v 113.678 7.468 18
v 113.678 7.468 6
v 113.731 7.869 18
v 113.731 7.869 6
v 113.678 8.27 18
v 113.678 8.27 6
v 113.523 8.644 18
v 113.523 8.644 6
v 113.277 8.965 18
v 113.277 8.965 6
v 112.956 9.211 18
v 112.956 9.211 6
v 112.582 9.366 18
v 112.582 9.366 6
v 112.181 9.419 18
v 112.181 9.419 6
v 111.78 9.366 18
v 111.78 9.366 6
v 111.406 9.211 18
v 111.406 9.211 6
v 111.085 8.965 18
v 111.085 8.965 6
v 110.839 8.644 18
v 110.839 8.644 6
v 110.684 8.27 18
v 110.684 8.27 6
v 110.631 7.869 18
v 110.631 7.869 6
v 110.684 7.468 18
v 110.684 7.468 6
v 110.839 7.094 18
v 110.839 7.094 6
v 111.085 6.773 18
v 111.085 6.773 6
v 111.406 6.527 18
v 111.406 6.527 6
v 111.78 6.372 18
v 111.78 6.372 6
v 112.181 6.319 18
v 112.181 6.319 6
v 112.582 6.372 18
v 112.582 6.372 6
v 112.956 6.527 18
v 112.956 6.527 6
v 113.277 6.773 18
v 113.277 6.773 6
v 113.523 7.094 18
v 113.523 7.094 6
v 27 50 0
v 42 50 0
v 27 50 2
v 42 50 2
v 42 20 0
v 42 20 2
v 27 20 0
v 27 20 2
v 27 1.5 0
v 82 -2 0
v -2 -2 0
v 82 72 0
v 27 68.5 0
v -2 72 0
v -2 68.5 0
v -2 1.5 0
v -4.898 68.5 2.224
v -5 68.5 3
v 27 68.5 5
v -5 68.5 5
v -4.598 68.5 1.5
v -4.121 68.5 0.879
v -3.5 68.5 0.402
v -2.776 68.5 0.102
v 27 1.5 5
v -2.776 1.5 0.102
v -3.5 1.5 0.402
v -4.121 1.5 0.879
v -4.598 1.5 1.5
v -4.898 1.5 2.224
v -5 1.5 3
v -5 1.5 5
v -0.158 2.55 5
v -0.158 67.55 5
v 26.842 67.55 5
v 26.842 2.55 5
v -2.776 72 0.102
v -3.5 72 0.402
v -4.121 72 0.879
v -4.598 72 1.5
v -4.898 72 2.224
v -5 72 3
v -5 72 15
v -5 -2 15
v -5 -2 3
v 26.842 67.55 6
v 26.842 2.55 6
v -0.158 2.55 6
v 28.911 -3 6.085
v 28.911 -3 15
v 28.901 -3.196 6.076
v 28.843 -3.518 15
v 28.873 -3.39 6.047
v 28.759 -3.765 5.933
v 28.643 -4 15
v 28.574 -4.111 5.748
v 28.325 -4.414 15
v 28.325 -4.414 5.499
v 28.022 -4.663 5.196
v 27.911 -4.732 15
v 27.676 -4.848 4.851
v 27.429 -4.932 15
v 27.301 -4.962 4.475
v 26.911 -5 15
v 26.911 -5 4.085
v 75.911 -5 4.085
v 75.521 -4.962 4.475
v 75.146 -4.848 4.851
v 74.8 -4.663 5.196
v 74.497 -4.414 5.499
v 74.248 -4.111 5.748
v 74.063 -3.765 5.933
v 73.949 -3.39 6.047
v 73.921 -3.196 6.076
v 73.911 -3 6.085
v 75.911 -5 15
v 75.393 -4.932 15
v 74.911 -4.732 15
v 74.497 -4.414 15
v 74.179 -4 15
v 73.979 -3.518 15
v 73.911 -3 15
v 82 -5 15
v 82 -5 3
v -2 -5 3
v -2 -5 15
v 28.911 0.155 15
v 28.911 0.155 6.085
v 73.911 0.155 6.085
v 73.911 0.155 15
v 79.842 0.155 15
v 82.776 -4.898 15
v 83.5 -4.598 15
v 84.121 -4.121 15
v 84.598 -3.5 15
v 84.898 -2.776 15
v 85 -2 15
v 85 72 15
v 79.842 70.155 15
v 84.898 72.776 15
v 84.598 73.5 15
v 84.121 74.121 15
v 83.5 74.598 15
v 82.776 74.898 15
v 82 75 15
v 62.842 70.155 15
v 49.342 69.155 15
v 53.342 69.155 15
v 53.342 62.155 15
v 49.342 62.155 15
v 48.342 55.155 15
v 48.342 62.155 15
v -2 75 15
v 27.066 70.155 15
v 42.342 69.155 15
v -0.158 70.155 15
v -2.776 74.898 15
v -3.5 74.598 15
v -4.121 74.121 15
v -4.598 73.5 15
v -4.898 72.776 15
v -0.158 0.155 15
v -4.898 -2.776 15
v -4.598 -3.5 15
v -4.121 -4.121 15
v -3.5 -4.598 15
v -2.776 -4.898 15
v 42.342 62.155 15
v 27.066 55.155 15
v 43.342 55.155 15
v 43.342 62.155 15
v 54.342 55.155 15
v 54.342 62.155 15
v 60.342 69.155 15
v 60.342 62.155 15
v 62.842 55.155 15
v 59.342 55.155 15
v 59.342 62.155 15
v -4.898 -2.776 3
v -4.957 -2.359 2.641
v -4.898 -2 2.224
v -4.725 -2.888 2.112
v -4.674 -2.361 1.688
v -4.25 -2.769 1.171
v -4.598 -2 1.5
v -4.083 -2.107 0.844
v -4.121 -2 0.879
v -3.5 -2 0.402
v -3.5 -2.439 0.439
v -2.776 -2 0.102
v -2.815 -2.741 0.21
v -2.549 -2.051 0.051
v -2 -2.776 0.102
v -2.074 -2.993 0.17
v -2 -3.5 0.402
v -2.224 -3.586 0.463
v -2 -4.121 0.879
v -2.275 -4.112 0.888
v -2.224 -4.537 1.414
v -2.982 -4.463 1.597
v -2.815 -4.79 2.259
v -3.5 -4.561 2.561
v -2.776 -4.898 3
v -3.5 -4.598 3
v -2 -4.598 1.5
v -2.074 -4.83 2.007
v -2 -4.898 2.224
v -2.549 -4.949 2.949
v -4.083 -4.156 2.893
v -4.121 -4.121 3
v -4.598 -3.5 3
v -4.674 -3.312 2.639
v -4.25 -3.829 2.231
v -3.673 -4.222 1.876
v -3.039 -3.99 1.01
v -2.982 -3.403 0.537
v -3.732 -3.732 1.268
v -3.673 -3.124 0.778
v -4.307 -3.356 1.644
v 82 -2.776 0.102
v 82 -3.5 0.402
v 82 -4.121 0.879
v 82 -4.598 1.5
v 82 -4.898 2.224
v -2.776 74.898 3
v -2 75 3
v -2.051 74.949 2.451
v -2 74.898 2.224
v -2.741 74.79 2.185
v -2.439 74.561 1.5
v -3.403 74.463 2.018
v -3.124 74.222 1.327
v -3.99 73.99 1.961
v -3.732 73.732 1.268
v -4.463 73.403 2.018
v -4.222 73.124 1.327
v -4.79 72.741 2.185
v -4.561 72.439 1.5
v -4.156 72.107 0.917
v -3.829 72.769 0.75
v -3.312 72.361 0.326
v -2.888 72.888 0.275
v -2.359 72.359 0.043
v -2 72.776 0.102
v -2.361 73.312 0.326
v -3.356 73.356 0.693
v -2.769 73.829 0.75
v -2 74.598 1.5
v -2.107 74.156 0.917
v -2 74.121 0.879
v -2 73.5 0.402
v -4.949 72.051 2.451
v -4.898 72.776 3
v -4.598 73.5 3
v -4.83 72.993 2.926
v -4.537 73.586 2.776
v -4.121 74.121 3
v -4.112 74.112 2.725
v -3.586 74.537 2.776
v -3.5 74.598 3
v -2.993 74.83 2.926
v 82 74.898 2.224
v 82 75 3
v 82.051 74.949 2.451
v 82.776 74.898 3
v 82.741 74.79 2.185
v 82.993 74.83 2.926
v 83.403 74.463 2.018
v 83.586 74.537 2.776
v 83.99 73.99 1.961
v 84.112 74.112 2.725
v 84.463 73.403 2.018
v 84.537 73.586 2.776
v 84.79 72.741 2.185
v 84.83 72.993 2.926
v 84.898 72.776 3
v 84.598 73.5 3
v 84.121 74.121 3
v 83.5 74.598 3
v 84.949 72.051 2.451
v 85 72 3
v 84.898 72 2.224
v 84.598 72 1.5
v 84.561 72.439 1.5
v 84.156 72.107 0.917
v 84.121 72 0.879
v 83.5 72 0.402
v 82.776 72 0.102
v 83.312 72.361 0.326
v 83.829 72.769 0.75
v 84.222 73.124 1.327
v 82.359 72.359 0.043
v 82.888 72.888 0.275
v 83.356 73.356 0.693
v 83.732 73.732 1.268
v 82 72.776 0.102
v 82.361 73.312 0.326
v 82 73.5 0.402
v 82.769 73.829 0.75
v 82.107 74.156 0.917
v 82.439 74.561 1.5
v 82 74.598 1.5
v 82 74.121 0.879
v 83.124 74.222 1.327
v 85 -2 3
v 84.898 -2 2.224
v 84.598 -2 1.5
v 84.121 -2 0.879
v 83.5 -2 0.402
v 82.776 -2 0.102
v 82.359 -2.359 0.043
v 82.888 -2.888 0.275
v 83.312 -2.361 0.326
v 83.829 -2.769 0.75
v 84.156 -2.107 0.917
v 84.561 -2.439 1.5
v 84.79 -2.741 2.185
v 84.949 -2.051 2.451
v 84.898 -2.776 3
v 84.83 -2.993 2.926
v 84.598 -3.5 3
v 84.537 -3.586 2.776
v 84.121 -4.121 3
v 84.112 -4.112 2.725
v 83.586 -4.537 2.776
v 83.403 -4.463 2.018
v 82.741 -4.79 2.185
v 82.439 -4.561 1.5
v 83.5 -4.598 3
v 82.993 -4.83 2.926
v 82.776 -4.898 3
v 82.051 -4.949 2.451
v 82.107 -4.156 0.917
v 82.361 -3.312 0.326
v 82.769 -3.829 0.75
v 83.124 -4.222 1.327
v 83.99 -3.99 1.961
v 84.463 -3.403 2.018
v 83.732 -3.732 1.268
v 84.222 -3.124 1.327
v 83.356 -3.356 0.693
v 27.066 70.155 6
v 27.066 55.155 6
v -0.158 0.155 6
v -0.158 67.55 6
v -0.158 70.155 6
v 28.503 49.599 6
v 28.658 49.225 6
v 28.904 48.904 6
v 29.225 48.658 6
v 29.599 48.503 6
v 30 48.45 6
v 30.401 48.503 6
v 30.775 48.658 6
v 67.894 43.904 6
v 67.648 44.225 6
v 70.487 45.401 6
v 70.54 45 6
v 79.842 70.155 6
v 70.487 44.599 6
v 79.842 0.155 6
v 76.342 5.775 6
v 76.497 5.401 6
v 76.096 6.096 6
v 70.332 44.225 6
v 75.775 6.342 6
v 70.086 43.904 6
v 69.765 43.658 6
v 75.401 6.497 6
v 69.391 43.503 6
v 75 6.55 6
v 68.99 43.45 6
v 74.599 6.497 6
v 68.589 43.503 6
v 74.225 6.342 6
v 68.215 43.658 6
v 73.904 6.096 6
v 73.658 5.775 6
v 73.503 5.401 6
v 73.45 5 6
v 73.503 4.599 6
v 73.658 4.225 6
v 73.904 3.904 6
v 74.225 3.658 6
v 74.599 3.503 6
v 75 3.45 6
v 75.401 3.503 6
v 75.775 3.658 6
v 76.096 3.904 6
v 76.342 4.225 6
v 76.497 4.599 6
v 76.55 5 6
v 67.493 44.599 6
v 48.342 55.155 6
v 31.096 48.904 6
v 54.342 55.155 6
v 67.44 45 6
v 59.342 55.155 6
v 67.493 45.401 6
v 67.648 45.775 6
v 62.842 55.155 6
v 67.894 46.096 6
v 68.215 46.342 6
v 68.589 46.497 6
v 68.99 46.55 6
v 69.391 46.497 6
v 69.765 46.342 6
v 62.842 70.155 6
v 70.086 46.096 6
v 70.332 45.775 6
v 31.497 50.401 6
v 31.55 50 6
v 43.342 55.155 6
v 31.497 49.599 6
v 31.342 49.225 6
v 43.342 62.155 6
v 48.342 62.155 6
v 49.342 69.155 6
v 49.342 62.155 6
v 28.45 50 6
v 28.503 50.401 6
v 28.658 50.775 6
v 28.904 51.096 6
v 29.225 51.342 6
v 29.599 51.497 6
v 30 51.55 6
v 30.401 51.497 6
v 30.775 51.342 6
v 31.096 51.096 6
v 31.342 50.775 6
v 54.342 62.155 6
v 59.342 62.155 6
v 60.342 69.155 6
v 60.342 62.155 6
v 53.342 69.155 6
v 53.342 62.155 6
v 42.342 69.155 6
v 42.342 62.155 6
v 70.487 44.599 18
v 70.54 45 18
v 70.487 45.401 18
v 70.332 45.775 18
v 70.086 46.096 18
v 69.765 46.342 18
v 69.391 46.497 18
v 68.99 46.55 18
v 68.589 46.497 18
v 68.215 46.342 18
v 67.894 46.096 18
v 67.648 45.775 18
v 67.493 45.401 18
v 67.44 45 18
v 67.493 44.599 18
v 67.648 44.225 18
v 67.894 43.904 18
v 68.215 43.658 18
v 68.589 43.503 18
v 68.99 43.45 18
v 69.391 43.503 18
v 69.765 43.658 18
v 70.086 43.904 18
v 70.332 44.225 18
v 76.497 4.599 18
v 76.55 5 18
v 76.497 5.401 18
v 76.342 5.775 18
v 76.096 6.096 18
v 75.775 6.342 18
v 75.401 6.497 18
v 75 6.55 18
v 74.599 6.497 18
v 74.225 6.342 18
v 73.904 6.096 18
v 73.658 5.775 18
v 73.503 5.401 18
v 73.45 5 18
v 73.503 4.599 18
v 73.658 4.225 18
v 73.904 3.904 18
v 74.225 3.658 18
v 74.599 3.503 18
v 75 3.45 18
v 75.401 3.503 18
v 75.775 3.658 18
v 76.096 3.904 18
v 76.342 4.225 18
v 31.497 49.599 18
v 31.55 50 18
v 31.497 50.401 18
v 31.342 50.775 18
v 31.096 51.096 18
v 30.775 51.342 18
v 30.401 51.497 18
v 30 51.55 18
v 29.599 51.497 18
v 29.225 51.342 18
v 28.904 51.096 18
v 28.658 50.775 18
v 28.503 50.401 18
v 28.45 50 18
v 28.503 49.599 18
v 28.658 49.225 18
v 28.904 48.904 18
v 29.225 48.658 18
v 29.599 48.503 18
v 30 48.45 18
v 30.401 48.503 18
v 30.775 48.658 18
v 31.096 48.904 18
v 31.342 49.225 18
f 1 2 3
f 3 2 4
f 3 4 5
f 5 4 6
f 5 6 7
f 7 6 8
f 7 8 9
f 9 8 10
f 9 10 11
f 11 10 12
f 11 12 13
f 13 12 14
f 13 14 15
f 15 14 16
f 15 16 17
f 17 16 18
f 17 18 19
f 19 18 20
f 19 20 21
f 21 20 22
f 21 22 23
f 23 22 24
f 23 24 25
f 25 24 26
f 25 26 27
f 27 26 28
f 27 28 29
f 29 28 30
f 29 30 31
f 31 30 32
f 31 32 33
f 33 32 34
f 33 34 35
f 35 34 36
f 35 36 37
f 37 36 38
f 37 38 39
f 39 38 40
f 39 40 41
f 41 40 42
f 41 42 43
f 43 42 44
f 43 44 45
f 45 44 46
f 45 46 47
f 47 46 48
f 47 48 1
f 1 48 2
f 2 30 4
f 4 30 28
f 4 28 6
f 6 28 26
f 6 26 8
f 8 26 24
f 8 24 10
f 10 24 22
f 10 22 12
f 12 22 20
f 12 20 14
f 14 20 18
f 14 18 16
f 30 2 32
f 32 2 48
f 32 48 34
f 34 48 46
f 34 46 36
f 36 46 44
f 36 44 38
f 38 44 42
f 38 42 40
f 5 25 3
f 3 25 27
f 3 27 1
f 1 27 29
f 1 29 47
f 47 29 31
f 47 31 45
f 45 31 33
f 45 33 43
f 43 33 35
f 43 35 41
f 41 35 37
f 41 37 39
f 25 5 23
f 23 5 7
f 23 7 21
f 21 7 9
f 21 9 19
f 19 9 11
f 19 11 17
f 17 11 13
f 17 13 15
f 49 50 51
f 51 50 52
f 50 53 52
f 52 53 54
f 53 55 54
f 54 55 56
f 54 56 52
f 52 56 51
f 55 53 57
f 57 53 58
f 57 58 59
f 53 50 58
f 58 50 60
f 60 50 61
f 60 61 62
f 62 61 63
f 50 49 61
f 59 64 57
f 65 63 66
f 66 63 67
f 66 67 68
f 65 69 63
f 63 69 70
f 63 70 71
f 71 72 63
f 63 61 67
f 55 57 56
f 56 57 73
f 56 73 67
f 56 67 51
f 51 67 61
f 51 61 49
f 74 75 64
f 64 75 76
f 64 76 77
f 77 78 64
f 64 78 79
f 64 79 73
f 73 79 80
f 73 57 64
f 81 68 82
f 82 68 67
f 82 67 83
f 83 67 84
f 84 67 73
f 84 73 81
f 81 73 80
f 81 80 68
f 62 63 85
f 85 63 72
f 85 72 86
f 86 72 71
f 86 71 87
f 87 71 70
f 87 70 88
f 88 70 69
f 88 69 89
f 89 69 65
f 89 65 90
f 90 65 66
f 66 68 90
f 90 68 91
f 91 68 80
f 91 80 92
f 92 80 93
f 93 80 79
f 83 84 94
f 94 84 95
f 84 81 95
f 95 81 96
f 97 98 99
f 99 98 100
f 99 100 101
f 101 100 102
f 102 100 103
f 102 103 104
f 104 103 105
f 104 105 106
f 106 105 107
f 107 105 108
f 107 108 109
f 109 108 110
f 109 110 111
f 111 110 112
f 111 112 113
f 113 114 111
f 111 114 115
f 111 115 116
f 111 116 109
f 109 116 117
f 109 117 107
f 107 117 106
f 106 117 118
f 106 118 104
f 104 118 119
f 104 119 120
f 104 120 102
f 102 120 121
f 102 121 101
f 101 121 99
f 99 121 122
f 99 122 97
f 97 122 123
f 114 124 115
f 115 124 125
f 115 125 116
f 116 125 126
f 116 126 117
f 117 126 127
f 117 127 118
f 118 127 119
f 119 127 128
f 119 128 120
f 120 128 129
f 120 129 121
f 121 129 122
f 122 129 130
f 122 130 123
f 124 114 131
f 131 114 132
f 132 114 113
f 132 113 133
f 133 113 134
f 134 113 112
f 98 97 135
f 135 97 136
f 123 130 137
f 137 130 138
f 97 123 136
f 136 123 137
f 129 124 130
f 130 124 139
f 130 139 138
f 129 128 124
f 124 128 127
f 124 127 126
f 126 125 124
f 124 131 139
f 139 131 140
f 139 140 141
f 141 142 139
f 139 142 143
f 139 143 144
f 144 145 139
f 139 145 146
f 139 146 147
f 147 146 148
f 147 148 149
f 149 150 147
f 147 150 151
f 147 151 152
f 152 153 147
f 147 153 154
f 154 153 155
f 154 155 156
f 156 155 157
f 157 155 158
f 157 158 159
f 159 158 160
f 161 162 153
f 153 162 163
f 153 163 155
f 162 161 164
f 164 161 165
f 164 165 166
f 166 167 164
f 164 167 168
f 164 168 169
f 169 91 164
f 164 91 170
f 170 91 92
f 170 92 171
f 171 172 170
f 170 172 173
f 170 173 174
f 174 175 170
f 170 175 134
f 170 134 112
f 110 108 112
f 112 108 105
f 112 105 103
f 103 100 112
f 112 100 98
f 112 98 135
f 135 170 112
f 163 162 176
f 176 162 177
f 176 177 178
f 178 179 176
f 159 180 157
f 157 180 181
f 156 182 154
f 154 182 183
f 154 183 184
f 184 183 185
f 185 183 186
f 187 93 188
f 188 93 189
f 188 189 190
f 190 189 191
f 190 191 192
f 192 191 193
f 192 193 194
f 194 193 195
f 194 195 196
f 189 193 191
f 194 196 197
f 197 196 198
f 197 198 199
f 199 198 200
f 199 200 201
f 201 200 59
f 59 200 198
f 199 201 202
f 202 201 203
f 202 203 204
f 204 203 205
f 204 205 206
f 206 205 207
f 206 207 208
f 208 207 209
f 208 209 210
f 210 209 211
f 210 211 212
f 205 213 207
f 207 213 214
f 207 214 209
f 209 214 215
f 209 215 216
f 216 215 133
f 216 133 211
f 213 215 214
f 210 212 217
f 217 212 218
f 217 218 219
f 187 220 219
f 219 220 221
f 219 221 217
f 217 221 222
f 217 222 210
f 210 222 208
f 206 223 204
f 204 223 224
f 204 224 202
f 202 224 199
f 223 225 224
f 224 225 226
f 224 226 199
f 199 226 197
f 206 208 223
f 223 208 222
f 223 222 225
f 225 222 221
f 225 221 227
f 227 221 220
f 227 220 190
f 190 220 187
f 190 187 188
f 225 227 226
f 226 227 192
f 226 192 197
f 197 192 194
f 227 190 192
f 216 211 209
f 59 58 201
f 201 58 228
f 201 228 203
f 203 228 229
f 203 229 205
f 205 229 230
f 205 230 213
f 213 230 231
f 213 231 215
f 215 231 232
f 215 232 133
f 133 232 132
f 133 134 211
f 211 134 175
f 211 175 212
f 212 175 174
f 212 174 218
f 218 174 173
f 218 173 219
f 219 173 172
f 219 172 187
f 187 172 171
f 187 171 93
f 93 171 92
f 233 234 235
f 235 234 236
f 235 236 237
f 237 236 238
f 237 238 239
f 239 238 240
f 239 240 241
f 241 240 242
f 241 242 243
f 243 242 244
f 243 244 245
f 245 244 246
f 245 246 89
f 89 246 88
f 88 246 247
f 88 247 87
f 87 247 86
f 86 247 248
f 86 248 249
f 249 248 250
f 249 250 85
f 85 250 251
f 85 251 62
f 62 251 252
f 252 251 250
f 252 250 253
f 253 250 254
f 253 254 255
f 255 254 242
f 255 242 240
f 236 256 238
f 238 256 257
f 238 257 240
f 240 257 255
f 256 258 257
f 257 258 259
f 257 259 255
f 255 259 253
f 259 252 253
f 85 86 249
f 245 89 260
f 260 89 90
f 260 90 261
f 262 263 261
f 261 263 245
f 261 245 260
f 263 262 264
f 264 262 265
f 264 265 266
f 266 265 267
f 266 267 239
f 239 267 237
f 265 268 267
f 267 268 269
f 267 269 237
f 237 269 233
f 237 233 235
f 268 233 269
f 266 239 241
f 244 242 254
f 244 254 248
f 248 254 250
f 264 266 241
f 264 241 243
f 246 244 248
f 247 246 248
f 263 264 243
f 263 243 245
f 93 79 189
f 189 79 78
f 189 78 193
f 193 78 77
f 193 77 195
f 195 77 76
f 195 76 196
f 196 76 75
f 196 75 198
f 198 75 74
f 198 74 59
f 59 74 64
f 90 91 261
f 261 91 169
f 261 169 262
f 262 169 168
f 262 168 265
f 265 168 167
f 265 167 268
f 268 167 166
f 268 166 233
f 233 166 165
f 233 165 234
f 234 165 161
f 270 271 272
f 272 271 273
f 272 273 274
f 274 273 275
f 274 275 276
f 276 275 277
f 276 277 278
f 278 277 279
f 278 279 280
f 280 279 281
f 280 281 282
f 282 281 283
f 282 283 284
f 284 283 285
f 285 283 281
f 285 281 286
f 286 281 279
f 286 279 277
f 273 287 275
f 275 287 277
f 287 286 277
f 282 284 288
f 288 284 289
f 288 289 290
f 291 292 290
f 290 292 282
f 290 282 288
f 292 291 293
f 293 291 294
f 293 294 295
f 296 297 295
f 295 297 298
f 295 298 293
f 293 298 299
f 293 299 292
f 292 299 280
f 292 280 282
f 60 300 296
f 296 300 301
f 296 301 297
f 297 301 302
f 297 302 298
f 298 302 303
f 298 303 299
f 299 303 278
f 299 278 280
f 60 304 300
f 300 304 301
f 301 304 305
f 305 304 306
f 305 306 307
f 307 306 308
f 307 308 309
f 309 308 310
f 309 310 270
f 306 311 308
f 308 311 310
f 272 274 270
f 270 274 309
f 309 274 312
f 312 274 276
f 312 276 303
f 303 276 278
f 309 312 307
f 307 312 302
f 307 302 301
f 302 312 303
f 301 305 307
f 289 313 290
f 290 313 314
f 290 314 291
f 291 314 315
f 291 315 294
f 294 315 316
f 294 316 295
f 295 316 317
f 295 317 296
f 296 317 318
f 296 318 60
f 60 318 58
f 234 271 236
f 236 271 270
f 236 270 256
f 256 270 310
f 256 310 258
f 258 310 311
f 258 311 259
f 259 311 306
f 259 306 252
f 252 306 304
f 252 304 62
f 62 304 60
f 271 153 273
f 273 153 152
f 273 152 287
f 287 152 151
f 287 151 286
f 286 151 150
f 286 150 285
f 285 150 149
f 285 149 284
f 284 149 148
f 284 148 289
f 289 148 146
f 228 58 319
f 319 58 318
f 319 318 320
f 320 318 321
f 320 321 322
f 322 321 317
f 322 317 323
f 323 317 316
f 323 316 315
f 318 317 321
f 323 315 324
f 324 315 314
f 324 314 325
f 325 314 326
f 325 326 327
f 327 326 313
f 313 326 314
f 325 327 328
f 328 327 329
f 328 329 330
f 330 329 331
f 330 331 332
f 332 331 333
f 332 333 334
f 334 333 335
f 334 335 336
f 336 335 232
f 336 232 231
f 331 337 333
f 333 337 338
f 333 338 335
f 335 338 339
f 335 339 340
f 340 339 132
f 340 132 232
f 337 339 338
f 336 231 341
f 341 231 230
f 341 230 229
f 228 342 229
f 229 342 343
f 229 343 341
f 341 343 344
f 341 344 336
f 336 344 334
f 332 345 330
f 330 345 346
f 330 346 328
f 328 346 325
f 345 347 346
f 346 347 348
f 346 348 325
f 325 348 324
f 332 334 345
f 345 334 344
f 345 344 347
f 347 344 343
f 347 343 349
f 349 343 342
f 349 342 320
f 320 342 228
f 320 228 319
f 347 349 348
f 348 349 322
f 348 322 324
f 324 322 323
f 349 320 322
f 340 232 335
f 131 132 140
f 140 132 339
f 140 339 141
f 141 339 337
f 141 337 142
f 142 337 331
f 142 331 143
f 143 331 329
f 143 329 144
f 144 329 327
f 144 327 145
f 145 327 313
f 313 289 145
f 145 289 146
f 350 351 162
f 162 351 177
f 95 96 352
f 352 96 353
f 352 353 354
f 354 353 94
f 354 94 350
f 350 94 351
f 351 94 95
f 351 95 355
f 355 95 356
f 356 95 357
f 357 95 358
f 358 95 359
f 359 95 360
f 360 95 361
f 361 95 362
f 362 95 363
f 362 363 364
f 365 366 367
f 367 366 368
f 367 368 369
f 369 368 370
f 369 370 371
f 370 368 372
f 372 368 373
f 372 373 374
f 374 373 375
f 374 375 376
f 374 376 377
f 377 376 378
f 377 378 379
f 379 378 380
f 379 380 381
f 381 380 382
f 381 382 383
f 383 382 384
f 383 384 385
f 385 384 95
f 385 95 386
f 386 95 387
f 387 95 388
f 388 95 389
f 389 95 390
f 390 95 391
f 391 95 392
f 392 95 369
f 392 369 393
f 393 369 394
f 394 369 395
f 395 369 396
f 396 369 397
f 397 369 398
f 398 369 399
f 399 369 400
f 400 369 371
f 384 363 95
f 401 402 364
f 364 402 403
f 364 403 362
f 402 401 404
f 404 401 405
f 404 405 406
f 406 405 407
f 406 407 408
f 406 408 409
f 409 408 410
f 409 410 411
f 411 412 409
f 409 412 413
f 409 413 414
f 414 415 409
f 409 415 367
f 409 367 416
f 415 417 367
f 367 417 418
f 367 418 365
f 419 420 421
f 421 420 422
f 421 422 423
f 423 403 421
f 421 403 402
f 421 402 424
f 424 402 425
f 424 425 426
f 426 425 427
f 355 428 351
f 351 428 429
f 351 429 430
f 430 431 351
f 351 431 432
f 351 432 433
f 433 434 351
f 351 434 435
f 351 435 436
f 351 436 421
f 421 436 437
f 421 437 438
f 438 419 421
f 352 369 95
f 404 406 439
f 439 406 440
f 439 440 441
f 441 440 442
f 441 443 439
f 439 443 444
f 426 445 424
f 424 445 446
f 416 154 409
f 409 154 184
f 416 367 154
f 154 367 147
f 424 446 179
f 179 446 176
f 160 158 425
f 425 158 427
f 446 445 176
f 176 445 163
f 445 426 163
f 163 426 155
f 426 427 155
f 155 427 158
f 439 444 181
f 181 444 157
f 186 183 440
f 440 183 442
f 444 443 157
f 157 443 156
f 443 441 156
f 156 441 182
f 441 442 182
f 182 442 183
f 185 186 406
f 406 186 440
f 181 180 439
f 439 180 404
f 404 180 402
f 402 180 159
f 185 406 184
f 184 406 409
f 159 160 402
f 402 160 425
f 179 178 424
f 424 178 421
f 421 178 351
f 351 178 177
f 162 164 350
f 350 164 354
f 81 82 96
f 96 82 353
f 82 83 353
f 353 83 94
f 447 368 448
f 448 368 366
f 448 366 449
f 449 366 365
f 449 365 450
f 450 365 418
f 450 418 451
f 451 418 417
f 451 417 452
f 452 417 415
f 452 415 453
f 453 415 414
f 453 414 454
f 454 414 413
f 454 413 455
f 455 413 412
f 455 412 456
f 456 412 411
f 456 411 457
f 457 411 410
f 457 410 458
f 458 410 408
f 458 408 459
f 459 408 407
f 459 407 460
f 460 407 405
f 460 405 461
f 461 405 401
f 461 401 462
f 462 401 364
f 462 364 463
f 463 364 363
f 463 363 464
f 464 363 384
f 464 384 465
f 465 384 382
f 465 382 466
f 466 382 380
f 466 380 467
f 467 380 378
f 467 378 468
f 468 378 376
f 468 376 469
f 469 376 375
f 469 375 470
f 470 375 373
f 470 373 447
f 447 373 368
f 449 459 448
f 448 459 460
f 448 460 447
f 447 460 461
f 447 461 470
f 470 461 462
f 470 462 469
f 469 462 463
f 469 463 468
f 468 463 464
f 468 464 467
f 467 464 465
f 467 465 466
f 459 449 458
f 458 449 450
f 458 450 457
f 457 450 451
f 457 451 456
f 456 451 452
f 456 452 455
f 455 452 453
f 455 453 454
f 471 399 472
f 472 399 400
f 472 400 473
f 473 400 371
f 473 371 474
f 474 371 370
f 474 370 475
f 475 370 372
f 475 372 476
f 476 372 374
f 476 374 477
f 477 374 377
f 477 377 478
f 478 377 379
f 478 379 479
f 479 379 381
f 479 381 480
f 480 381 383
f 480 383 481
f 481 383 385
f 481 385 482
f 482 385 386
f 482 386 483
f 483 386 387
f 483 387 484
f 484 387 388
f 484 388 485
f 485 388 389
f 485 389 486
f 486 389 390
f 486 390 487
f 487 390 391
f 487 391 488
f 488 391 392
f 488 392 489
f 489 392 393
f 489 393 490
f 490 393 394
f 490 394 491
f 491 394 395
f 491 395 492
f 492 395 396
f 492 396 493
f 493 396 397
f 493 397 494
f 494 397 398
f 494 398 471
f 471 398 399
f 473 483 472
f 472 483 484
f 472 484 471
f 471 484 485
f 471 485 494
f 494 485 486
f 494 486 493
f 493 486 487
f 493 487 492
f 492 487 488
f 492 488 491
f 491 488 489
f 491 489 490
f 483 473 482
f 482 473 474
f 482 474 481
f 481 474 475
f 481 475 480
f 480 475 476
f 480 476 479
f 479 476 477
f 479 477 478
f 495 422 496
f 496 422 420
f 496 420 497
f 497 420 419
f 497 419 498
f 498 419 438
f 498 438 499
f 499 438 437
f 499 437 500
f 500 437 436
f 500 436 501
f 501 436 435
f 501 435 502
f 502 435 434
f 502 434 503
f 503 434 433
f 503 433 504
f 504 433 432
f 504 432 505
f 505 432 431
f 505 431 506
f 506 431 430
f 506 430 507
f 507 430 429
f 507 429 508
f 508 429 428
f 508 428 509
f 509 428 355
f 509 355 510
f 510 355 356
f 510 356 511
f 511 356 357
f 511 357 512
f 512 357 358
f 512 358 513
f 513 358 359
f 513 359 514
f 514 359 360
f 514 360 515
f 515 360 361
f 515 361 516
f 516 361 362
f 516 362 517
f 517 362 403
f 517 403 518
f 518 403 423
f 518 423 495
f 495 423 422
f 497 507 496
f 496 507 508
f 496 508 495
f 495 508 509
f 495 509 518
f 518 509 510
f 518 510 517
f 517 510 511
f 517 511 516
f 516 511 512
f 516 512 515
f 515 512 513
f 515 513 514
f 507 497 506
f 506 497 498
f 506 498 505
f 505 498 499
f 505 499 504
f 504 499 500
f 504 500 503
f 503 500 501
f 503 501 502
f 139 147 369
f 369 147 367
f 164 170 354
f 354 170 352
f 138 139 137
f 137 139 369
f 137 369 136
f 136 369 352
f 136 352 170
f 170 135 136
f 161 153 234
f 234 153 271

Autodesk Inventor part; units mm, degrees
ref_plane "YZ Plane" through (0, 0, 0) normal (1, 0, 0) x (0, 1, 0)
ref_plane "XZ Plane" through (0, 0, 0) normal (0, 1, 0) x (-1, 0, 0)
ref_plane "XY Plane" through (0, 0, 0) normal (0, 0, 1) x (1, 0, 0)
sketch "Sketch1" plane through (0, 0, 0) normal (0, 0, 1) x (1, 0, 0)
  line L0 (-5, -5) -> (85, -5)
  line L1 (85, -5) -> (85, 75)
  line L2 (85, 75) -> (-5, 75)
  line L3 (-5, 75) -> (-5, -5)
  point P0 (0, 0)
  dimension "d0" = 90
  dimension "d1" = 80
extrude "Extrusion1" add sketch "Sketch1" along normal blind 15
sketch "Sketch3" plane through (0, 0, 15) normal (0, 0, 1) x (1, 0, 0)
  line L0 (-0.1584, 0.1549) -> (79.8416, 0.1549)
  line L1 (79.8416, 0.1549) -> (79.8416, 70.1549)
  line L2 (79.8416, 70.1549) -> (-0.1584, 70.1549)
  line L3 (-0.1584, 70.1549) -> (-0.1584, 0.1549)
  point P0 (0, 0)
  dimension "d4" = 80
  dimension "d5" = 70
extrude "Extrusion2" cut sketch "Sketch3" against normal blind 9
sketch "Sketch4" plane through (0, 0, 6) normal (0, 0, 1) x (1, 0, 0)
  circle A0 centre (75, 5) radius 1.55
  circle A1 centre (30, 50) radius 1.55
  circle A2 centre (68.99, 45) radius 1.55
  circle A3 centre (112.181, 7.869) radius 1.55
  point P0 (0, 0)
  dimension "d8" = 3.1
  dimension "d9" = 3.1
  dimension "d10" = 3.1
  dimension "d51" = 3.1
extrude "Extrusion3" add sketch "Sketch4" along normal blind 12
sketch "Sketch9" plane through (0, 0, 6) normal (0, 0, 1) x (1, 0, 0)
  line L0 (-0.1583, 67.5504) -> (26.8417, 67.5504)
  line L1 (26.8417, 67.5504) -> (26.8417, 2.5504)
  line L2 (26.8417, 2.5504) -> (-0.1583, 2.5504)
  line L3 (-0.1583, 2.5504) -> (-0.1583, 67.5504)
  point P0 (0, 0)
  dimension "d13" = 27
  dimension "d14" = 65
extrude "Extrusion4" cut sketch "Sketch9" against normal blind 4
sketch "Sketch10" plane through (0, 0, 2) normal (0, 0, 1) x (1, 0, 0)
  line L0 (7, 64.5504) -> (20, 64.5504)
  line L1 (20, 64.5504) -> (20, 54.4354)
  line L2 (20, 54.4354) -> (7, 54.4354)
  line L3 (7, 54.4354) -> (7, 64.5504)
  line L4 (-0.1583, 67.5504) -> (26.8417, 67.5504) projected
  point P0 (0, 0)
  dimension "d54" = 3
extrude "Extrusion5" cut sketch "Sketch10" against normal blind 3
sketch "Sketch12" plane through (-0.1584, 70.1549, 15) normal (0, -1, 0) x (1, 0, 0)
  line L0 (0, 0) -> (80, 0) projected
  line L1 (61.5, 0) -> (52.5, 0)
  line L2 (52.5, 0) -> (52.5, -9)
  line L3 (52.5, -9) -> (61.5, -9)
  line L4 (61.5, -9) -> (61.5, 0)
  line L5 (50.5, 0) -> (41.5, 0)
  line L6 (41.5, 0) -> (41.5, -9)
  line L7 (41.5, -9) -> (50.5, -9)
  line L8 (50.5, -9) -> (50.5, 0)
  point P0 (0.1584, -15)
  dimension "d44" = 9
extrude "Extrusion7" add sketch "Sketch12" along normal blind 15
thread "Thread1" size "M3.5x0.6" class "6g" standard "ANSI Metric M Profile" full length
thread "Thread2" size "M3.5x0.6" class "6g" standard "ANSI Metric M Profile" full length
thread "Thread3" size "M3.5x0.6" class "6g" standard "ANSI Metric M Profile" full length
sketch "Sketch15" plane through (0, 0, 15) normal (0, 0, 1) x (1, 0, 0)
  line L0 (50.3416, 55.1549) -> (41.3416, 55.1549) projected
  line L1 (43.342, 55.1549) -> (48.342, 55.1549)
  line L2 (48.342, 55.1549) -> (48.342, 62.1549)
  line L3 (48.342, 62.1549) -> (43.342, 62.1549)
  line L4 (43.342, 62.1549) -> (43.342, 55.1549)
  point P0 (0, 0)
  dimension "d31" = 5
  dimension "d32" = 7
extrude "Extrusion9" cut sketch "Sketch15" against normal blind 9
sketch "Sketch16" plane through (0, 0, 15) normal (0, 0, 1) x (1, 0, 0)
  line L0 (61.3416, 55.1549) -> (52.3416, 55.1549) projected
  line L1 (54.342, 55.1549) -> (59.342, 55.1549)
  line L2 (59.342, 55.1549) -> (59.342, 62.1549)
  line L3 (59.342, 62.1549) -> (54.342, 62.1549)
  line L4 (54.342, 62.1549) -> (54.342, 55.1549)
  point P0 (0, 0)
  dimension "d35" = 5
  dimension "d36" = 7
extrude "Extrusion10" cut sketch "Sketch16" against normal blind 9
sketch "Sketch17" plane through (0, 0, 6) normal (0, 0, 1) x (1, 0, 0)
  line L0 (48.342, 55.1549) -> (48.342, 62.1549) projected
  line L1 (48.342, 62.1549) -> (43.342, 62.1549) projected
  line L2 (43.342, 62.1549) -> (43.342, 55.1549) projected
  line L3 (43.342, 55.1549) -> (41.3416, 55.1549) projected
  line L4 (41.3416, 55.1549) -> (41.3416, 70.1549) projected
  line L5 (41.3416, 70.1549) -> (-0.1584, 70.1549) projected
  line L6 (-0.1584, 70.1549) -> (-0.1584, 0.1549) projected
  line L7 (-0.1584, 0.1549) -> (79.8416, 0.1549) projected
  line L8 (79.8416, 0.1549) -> (79.8416, 70.1549) projected
  line L9 (79.8416, 70.1549) -> (61.3416, 70.1549) projected
  line L10 (61.3416, 70.1549) -> (61.3416, 55.1549) projected
  line L11 (61.3416, 55.1549) -> (59.342, 55.1549) projected
  line L12 (59.342, 55.1549) -> (59.342, 62.1549) projected
  line L13 (59.342, 62.1549) -> (54.342, 62.1549) projected
  line L14 (54.342, 62.1549) -> (54.342, 55.1549) projected
  line L15 (54.342, 55.1549) -> (52.3416, 55.1549) projected
  line L16 (52.3416, 55.1549) -> (52.3416, 70.1549) projected
  line L17 (52.3416, 70.1549) -> (50.3416, 70.1549) projected
  line L18 (50.3416, 70.1549) -> (50.3416, 55.1549) projected
  line L19 (50.3416, 55.1549) -> (48.342, 55.1549) projected
  line L20 (-0.1583, 67.5504) -> (-0.1583, 2.5504) projected
  line L21 (-0.1583, 2.5504) -> (26.8417, 2.5504) projected
  line L22 (26.8417, 2.5504) -> (26.8417, 67.5504) projected
  line L23 (26.8417, 67.5504) -> (-0.1583, 67.5504) projected
  circle A0 centre (30, 50) radius 1.55 projected
  circle A1 centre (75, 5) radius 1.55 projected
  circle A2 centre (68.99, 45) radius 1.55 projected
  line L24 (85, -5) -> (-5, -5) projected
  line L25 (-5, -5) -> (-5, 75) projected
  line L26 (-5, 75) -> (85, 75) projected
  line L27 (85, 75) -> (85, -5) projected
  line L28 (48.342, 55.1549) -> (48.342, 62.1549) projected
  line L29 (48.342, 62.1549) -> (43.342, 62.1549) projected
  line L30 (43.342, 62.1549) -> (43.342, 55.1549) projected
  line L31 (43.342, 55.1549) -> (41.3416, 55.1549) projected
  line L32 (41.3416, 55.1549) -> (41.3416, 70.1549) projected
  line L33 (41.3416, 70.1549) -> (-0.1584, 70.1549) projected
  line L34 (-0.1584, 70.1549) -> (-0.1584, 0.1549) projected
  line L35 (-0.1584, 0.1549) -> (79.8416, 0.1549) projected
  line L36 (79.8416, 0.1549) -> (79.8416, 70.1549) projected
  line L37 (79.8416, 70.1549) -> (61.3416, 70.1549) projected
  line L38 (61.3416, 70.1549) -> (61.3416, 55.1549) projected
  line L39 (61.3416, 55.1549) -> (59.342, 55.1549) projected
  line L40 (59.342, 55.1549) -> (59.342, 62.1549) projected
  line L41 (59.342, 62.1549) -> (54.342, 62.1549) projected
  line L42 (54.342, 62.1549) -> (54.342, 55.1549) projected
  line L43 (54.342, 55.1549) -> (52.3416, 55.1549) projected
  line L44 (52.3416, 55.1549) -> (52.3416, 70.1549) projected
  line L45 (52.3416, 70.1549) -> (50.3416, 70.1549) projected
  line L46 (50.3416, 70.1549) -> (50.3416, 55.1549) projected
  line L47 (50.3416, 55.1549) -> (48.342, 55.1549) projected
  circle A3 centre (30, 50) radius 1.55 projected
  circle A4 centre (75, 5) radius 1.55 projected
  circle A5 centre (68.99, 45) radius 1.55 projected
  line L48 (85, -5) -> (-5, -5) projected
  line L49 (-5, -5) -> (-5, 75) projected
  line L50 (-5, 75) -> (85, 75) projected
  line L51 (85, 75) -> (85, -5) projected
  line L52 (42.3418, 62.1549) -> (49.3418, 62.1549)
  line L53 (49.3418, 62.1549) -> (49.3418, 69.1549)
  line L54 (49.3418, 69.1549) -> (42.3418, 69.1549)
  line L55 (42.3418, 69.1549) -> (42.3418, 62.1549)
  line L56 (53.3418, 62.1549) -> (60.3418, 62.1549)
  line L57 (60.3418, 62.1549) -> (60.3418, 69.1549)
  line L58 (60.3418, 69.1549) -> (53.3418, 69.1549)
  line L59 (53.3418, 69.1549) -> (53.3418, 62.1549)
  line L60 (-0.1583, 67.5504) -> (-0.1583, 2.5504) projected
  line L61 (-0.1583, 2.5504) -> (26.8417, 2.5504) projected
  line L62 (26.8417, 2.5504) -> (26.8417, 67.5504) projected
  line L63 (26.8417, 67.5504) -> (-0.1583, 67.5504) projected
  circle A6 centre (112.181, 7.869) radius 1.55 projected
  circle A7 centre (112.181, 7.869) radius 1.55 projected
  point P0 (0, 0)
  dimension "d39" = 7
  dimension "d40" = 7
  dimension "d41" = 7
extrude "Extrusion11" cut sketch "Sketch17" along normal blind 9 contours L1 L52 L55 L54 L53 | L56 L59 L58 L57 L13
sketch "Sketch18" plane through (50.3416, 70.1549, 15) normal (0, -1, 0) x (1, 0, 0)
  line L0 (0, 0) -> (2, 0)
  line L1 (2, 0) -> (2, -9)
  line L2 (2, -9) -> (0, -9)
  line L3 (0, -9) -> (0, 0)
  point P0 (-50.3416, -15)
extrude "Extrusion12" add sketch "Sketch18" along normal blind 15
sketch "Sketch19" plane through (-0.1584, 70.1549, 6) normal (0, -1, 0) x (1, 0, 0)
  line L0 (41.5, 0) -> (41.5, 9) projected
  line L1 (0, 0) -> (41.5, 0) projected
  line L2 (41.5, 9) -> (40, 9)
  line L3 (40, 9) -> (40, 0)
  line L4 (40, 0) -> (41.5, 0)
  line L5 (41.5, 0) -> (41.5, 9)
  line L6 (61.5, 0) -> (80, 0) projected
  line L7 (61.5, 9) -> (63, 9)
  line L8 (63, 9) -> (63, 0)
  line L9 (63, 0) -> (61.5, 0)
  line L10 (61.5, 0) -> (61.5, 9)
  point P0 (0.1584, -6)
  dimension "d47" = 1.5
  dimension "d48" = 1.5
extrude "Extrusion13" add sketch "Sketch19" along normal blind 15
sketch "Sketch20" plane through (0, 0, 6) normal (0, 0, 1) x (1, 0, 0)
  point P0 (0, 0)
sketch "Sketch21" plane through (39.8416, 70.1549, 6) normal (-1, 0, 0) x (0, 0, 1)
  point P0 (-6, -70.1549)
sketch "Sketch22" plane through (0, 0, 6) normal (0, 0, 1) x (1, 0, 0)
  line L0 (43.342, 55.1549) -> (39.8416, 55.1549) projected
  line L1 (-0.1584, 70.1549) -> (39.8416, 70.1549) projected
  line L2 (39.8416, 55.1549) -> (27.066, 55.1549)
  line L3 (27.066, 55.1549) -> (27.066, 70.1549)
  line L4 (27.066, 70.1549) -> (39.8416, 70.1549)
  line L5 (39.8416, 70.1549) -> (39.8416, 55.1549)
  point P0 (0, 0)
extrude "Extrusion14" add sketch "Sketch22" along normal blind 9
fillet "Fillet1" radius 3 1 edges at (85, -5, 7.5)
fillet "Fillet2" radius 3 8 edges at (85, 75, 7.5) (-5, 75, 7.5) (-5, -5, 7.5) (-5, 35, 0) (40, 75, 0) (84.1213, -4.1213, 0) (38.5, -5, 0) (85, 36.5, 0)
sketch "Sketch23" plane through (-2, -5, 3) normal (0, -1, 0) x (1, 0, 0)
  line L0 (75.911, 12.0851) -> (30.911, 12.0851)
  line L1 (30.911, 12.0851) -> (30.911, 3.0851)
  line L2 (30.911, 3.0851) -> (75.911, 3.0851)
  line L3 (75.911, 3.0851) -> (75.911, 12.0851)
  point P0 (2, -3)
  dimension "d57" = 45
  dimension "d58" = 9
extrude "Extrusion15" cut sketch "Sketch23" against normal blind 6
fillet "Fillet3" radius 2 3 edges at (51.411, -5, 6.0851) (28.911, -5, 10.5426) (73.911, -5, 10.5426)
sketch "Sketch24" plane through (0, 0, 0) normal (0, 0, -1) x (-1, 0, 0)
  line L0 (-27, 1.5) -> (5, 1.5)
  line L1 (5, 1.5) -> (5, 68.5)
  line L2 (5, 68.5) -> (-27, 68.5)
  line L3 (-27, 68.5) -> (-27, 1.5)
  point P0 (0, 0)
  dimension "d62" = 32
  dimension "d63" = 67
extrude "Extrusion16" cut sketch "Sketch24" against normal blind 5
sketch "Sketch25" plane through (0, 0, 0) normal (0, 0, -1) x (-1, 0, 0)
  line L0 (-27, 20) -> (-42, 20)
  line L1 (-42, 20) -> (-42, 50)
  line L2 (-42, 50) -> (-27, 50)
  line L3 (-27, 50) -> (-27, 20)
  point P0 (0, 0)
  dimension "d66" = 15
  dimension "d67" = 30
extrude "Extrusion17" cut sketch "Sketch25" against normal blind 2
properties part number "case_bottom_new"
